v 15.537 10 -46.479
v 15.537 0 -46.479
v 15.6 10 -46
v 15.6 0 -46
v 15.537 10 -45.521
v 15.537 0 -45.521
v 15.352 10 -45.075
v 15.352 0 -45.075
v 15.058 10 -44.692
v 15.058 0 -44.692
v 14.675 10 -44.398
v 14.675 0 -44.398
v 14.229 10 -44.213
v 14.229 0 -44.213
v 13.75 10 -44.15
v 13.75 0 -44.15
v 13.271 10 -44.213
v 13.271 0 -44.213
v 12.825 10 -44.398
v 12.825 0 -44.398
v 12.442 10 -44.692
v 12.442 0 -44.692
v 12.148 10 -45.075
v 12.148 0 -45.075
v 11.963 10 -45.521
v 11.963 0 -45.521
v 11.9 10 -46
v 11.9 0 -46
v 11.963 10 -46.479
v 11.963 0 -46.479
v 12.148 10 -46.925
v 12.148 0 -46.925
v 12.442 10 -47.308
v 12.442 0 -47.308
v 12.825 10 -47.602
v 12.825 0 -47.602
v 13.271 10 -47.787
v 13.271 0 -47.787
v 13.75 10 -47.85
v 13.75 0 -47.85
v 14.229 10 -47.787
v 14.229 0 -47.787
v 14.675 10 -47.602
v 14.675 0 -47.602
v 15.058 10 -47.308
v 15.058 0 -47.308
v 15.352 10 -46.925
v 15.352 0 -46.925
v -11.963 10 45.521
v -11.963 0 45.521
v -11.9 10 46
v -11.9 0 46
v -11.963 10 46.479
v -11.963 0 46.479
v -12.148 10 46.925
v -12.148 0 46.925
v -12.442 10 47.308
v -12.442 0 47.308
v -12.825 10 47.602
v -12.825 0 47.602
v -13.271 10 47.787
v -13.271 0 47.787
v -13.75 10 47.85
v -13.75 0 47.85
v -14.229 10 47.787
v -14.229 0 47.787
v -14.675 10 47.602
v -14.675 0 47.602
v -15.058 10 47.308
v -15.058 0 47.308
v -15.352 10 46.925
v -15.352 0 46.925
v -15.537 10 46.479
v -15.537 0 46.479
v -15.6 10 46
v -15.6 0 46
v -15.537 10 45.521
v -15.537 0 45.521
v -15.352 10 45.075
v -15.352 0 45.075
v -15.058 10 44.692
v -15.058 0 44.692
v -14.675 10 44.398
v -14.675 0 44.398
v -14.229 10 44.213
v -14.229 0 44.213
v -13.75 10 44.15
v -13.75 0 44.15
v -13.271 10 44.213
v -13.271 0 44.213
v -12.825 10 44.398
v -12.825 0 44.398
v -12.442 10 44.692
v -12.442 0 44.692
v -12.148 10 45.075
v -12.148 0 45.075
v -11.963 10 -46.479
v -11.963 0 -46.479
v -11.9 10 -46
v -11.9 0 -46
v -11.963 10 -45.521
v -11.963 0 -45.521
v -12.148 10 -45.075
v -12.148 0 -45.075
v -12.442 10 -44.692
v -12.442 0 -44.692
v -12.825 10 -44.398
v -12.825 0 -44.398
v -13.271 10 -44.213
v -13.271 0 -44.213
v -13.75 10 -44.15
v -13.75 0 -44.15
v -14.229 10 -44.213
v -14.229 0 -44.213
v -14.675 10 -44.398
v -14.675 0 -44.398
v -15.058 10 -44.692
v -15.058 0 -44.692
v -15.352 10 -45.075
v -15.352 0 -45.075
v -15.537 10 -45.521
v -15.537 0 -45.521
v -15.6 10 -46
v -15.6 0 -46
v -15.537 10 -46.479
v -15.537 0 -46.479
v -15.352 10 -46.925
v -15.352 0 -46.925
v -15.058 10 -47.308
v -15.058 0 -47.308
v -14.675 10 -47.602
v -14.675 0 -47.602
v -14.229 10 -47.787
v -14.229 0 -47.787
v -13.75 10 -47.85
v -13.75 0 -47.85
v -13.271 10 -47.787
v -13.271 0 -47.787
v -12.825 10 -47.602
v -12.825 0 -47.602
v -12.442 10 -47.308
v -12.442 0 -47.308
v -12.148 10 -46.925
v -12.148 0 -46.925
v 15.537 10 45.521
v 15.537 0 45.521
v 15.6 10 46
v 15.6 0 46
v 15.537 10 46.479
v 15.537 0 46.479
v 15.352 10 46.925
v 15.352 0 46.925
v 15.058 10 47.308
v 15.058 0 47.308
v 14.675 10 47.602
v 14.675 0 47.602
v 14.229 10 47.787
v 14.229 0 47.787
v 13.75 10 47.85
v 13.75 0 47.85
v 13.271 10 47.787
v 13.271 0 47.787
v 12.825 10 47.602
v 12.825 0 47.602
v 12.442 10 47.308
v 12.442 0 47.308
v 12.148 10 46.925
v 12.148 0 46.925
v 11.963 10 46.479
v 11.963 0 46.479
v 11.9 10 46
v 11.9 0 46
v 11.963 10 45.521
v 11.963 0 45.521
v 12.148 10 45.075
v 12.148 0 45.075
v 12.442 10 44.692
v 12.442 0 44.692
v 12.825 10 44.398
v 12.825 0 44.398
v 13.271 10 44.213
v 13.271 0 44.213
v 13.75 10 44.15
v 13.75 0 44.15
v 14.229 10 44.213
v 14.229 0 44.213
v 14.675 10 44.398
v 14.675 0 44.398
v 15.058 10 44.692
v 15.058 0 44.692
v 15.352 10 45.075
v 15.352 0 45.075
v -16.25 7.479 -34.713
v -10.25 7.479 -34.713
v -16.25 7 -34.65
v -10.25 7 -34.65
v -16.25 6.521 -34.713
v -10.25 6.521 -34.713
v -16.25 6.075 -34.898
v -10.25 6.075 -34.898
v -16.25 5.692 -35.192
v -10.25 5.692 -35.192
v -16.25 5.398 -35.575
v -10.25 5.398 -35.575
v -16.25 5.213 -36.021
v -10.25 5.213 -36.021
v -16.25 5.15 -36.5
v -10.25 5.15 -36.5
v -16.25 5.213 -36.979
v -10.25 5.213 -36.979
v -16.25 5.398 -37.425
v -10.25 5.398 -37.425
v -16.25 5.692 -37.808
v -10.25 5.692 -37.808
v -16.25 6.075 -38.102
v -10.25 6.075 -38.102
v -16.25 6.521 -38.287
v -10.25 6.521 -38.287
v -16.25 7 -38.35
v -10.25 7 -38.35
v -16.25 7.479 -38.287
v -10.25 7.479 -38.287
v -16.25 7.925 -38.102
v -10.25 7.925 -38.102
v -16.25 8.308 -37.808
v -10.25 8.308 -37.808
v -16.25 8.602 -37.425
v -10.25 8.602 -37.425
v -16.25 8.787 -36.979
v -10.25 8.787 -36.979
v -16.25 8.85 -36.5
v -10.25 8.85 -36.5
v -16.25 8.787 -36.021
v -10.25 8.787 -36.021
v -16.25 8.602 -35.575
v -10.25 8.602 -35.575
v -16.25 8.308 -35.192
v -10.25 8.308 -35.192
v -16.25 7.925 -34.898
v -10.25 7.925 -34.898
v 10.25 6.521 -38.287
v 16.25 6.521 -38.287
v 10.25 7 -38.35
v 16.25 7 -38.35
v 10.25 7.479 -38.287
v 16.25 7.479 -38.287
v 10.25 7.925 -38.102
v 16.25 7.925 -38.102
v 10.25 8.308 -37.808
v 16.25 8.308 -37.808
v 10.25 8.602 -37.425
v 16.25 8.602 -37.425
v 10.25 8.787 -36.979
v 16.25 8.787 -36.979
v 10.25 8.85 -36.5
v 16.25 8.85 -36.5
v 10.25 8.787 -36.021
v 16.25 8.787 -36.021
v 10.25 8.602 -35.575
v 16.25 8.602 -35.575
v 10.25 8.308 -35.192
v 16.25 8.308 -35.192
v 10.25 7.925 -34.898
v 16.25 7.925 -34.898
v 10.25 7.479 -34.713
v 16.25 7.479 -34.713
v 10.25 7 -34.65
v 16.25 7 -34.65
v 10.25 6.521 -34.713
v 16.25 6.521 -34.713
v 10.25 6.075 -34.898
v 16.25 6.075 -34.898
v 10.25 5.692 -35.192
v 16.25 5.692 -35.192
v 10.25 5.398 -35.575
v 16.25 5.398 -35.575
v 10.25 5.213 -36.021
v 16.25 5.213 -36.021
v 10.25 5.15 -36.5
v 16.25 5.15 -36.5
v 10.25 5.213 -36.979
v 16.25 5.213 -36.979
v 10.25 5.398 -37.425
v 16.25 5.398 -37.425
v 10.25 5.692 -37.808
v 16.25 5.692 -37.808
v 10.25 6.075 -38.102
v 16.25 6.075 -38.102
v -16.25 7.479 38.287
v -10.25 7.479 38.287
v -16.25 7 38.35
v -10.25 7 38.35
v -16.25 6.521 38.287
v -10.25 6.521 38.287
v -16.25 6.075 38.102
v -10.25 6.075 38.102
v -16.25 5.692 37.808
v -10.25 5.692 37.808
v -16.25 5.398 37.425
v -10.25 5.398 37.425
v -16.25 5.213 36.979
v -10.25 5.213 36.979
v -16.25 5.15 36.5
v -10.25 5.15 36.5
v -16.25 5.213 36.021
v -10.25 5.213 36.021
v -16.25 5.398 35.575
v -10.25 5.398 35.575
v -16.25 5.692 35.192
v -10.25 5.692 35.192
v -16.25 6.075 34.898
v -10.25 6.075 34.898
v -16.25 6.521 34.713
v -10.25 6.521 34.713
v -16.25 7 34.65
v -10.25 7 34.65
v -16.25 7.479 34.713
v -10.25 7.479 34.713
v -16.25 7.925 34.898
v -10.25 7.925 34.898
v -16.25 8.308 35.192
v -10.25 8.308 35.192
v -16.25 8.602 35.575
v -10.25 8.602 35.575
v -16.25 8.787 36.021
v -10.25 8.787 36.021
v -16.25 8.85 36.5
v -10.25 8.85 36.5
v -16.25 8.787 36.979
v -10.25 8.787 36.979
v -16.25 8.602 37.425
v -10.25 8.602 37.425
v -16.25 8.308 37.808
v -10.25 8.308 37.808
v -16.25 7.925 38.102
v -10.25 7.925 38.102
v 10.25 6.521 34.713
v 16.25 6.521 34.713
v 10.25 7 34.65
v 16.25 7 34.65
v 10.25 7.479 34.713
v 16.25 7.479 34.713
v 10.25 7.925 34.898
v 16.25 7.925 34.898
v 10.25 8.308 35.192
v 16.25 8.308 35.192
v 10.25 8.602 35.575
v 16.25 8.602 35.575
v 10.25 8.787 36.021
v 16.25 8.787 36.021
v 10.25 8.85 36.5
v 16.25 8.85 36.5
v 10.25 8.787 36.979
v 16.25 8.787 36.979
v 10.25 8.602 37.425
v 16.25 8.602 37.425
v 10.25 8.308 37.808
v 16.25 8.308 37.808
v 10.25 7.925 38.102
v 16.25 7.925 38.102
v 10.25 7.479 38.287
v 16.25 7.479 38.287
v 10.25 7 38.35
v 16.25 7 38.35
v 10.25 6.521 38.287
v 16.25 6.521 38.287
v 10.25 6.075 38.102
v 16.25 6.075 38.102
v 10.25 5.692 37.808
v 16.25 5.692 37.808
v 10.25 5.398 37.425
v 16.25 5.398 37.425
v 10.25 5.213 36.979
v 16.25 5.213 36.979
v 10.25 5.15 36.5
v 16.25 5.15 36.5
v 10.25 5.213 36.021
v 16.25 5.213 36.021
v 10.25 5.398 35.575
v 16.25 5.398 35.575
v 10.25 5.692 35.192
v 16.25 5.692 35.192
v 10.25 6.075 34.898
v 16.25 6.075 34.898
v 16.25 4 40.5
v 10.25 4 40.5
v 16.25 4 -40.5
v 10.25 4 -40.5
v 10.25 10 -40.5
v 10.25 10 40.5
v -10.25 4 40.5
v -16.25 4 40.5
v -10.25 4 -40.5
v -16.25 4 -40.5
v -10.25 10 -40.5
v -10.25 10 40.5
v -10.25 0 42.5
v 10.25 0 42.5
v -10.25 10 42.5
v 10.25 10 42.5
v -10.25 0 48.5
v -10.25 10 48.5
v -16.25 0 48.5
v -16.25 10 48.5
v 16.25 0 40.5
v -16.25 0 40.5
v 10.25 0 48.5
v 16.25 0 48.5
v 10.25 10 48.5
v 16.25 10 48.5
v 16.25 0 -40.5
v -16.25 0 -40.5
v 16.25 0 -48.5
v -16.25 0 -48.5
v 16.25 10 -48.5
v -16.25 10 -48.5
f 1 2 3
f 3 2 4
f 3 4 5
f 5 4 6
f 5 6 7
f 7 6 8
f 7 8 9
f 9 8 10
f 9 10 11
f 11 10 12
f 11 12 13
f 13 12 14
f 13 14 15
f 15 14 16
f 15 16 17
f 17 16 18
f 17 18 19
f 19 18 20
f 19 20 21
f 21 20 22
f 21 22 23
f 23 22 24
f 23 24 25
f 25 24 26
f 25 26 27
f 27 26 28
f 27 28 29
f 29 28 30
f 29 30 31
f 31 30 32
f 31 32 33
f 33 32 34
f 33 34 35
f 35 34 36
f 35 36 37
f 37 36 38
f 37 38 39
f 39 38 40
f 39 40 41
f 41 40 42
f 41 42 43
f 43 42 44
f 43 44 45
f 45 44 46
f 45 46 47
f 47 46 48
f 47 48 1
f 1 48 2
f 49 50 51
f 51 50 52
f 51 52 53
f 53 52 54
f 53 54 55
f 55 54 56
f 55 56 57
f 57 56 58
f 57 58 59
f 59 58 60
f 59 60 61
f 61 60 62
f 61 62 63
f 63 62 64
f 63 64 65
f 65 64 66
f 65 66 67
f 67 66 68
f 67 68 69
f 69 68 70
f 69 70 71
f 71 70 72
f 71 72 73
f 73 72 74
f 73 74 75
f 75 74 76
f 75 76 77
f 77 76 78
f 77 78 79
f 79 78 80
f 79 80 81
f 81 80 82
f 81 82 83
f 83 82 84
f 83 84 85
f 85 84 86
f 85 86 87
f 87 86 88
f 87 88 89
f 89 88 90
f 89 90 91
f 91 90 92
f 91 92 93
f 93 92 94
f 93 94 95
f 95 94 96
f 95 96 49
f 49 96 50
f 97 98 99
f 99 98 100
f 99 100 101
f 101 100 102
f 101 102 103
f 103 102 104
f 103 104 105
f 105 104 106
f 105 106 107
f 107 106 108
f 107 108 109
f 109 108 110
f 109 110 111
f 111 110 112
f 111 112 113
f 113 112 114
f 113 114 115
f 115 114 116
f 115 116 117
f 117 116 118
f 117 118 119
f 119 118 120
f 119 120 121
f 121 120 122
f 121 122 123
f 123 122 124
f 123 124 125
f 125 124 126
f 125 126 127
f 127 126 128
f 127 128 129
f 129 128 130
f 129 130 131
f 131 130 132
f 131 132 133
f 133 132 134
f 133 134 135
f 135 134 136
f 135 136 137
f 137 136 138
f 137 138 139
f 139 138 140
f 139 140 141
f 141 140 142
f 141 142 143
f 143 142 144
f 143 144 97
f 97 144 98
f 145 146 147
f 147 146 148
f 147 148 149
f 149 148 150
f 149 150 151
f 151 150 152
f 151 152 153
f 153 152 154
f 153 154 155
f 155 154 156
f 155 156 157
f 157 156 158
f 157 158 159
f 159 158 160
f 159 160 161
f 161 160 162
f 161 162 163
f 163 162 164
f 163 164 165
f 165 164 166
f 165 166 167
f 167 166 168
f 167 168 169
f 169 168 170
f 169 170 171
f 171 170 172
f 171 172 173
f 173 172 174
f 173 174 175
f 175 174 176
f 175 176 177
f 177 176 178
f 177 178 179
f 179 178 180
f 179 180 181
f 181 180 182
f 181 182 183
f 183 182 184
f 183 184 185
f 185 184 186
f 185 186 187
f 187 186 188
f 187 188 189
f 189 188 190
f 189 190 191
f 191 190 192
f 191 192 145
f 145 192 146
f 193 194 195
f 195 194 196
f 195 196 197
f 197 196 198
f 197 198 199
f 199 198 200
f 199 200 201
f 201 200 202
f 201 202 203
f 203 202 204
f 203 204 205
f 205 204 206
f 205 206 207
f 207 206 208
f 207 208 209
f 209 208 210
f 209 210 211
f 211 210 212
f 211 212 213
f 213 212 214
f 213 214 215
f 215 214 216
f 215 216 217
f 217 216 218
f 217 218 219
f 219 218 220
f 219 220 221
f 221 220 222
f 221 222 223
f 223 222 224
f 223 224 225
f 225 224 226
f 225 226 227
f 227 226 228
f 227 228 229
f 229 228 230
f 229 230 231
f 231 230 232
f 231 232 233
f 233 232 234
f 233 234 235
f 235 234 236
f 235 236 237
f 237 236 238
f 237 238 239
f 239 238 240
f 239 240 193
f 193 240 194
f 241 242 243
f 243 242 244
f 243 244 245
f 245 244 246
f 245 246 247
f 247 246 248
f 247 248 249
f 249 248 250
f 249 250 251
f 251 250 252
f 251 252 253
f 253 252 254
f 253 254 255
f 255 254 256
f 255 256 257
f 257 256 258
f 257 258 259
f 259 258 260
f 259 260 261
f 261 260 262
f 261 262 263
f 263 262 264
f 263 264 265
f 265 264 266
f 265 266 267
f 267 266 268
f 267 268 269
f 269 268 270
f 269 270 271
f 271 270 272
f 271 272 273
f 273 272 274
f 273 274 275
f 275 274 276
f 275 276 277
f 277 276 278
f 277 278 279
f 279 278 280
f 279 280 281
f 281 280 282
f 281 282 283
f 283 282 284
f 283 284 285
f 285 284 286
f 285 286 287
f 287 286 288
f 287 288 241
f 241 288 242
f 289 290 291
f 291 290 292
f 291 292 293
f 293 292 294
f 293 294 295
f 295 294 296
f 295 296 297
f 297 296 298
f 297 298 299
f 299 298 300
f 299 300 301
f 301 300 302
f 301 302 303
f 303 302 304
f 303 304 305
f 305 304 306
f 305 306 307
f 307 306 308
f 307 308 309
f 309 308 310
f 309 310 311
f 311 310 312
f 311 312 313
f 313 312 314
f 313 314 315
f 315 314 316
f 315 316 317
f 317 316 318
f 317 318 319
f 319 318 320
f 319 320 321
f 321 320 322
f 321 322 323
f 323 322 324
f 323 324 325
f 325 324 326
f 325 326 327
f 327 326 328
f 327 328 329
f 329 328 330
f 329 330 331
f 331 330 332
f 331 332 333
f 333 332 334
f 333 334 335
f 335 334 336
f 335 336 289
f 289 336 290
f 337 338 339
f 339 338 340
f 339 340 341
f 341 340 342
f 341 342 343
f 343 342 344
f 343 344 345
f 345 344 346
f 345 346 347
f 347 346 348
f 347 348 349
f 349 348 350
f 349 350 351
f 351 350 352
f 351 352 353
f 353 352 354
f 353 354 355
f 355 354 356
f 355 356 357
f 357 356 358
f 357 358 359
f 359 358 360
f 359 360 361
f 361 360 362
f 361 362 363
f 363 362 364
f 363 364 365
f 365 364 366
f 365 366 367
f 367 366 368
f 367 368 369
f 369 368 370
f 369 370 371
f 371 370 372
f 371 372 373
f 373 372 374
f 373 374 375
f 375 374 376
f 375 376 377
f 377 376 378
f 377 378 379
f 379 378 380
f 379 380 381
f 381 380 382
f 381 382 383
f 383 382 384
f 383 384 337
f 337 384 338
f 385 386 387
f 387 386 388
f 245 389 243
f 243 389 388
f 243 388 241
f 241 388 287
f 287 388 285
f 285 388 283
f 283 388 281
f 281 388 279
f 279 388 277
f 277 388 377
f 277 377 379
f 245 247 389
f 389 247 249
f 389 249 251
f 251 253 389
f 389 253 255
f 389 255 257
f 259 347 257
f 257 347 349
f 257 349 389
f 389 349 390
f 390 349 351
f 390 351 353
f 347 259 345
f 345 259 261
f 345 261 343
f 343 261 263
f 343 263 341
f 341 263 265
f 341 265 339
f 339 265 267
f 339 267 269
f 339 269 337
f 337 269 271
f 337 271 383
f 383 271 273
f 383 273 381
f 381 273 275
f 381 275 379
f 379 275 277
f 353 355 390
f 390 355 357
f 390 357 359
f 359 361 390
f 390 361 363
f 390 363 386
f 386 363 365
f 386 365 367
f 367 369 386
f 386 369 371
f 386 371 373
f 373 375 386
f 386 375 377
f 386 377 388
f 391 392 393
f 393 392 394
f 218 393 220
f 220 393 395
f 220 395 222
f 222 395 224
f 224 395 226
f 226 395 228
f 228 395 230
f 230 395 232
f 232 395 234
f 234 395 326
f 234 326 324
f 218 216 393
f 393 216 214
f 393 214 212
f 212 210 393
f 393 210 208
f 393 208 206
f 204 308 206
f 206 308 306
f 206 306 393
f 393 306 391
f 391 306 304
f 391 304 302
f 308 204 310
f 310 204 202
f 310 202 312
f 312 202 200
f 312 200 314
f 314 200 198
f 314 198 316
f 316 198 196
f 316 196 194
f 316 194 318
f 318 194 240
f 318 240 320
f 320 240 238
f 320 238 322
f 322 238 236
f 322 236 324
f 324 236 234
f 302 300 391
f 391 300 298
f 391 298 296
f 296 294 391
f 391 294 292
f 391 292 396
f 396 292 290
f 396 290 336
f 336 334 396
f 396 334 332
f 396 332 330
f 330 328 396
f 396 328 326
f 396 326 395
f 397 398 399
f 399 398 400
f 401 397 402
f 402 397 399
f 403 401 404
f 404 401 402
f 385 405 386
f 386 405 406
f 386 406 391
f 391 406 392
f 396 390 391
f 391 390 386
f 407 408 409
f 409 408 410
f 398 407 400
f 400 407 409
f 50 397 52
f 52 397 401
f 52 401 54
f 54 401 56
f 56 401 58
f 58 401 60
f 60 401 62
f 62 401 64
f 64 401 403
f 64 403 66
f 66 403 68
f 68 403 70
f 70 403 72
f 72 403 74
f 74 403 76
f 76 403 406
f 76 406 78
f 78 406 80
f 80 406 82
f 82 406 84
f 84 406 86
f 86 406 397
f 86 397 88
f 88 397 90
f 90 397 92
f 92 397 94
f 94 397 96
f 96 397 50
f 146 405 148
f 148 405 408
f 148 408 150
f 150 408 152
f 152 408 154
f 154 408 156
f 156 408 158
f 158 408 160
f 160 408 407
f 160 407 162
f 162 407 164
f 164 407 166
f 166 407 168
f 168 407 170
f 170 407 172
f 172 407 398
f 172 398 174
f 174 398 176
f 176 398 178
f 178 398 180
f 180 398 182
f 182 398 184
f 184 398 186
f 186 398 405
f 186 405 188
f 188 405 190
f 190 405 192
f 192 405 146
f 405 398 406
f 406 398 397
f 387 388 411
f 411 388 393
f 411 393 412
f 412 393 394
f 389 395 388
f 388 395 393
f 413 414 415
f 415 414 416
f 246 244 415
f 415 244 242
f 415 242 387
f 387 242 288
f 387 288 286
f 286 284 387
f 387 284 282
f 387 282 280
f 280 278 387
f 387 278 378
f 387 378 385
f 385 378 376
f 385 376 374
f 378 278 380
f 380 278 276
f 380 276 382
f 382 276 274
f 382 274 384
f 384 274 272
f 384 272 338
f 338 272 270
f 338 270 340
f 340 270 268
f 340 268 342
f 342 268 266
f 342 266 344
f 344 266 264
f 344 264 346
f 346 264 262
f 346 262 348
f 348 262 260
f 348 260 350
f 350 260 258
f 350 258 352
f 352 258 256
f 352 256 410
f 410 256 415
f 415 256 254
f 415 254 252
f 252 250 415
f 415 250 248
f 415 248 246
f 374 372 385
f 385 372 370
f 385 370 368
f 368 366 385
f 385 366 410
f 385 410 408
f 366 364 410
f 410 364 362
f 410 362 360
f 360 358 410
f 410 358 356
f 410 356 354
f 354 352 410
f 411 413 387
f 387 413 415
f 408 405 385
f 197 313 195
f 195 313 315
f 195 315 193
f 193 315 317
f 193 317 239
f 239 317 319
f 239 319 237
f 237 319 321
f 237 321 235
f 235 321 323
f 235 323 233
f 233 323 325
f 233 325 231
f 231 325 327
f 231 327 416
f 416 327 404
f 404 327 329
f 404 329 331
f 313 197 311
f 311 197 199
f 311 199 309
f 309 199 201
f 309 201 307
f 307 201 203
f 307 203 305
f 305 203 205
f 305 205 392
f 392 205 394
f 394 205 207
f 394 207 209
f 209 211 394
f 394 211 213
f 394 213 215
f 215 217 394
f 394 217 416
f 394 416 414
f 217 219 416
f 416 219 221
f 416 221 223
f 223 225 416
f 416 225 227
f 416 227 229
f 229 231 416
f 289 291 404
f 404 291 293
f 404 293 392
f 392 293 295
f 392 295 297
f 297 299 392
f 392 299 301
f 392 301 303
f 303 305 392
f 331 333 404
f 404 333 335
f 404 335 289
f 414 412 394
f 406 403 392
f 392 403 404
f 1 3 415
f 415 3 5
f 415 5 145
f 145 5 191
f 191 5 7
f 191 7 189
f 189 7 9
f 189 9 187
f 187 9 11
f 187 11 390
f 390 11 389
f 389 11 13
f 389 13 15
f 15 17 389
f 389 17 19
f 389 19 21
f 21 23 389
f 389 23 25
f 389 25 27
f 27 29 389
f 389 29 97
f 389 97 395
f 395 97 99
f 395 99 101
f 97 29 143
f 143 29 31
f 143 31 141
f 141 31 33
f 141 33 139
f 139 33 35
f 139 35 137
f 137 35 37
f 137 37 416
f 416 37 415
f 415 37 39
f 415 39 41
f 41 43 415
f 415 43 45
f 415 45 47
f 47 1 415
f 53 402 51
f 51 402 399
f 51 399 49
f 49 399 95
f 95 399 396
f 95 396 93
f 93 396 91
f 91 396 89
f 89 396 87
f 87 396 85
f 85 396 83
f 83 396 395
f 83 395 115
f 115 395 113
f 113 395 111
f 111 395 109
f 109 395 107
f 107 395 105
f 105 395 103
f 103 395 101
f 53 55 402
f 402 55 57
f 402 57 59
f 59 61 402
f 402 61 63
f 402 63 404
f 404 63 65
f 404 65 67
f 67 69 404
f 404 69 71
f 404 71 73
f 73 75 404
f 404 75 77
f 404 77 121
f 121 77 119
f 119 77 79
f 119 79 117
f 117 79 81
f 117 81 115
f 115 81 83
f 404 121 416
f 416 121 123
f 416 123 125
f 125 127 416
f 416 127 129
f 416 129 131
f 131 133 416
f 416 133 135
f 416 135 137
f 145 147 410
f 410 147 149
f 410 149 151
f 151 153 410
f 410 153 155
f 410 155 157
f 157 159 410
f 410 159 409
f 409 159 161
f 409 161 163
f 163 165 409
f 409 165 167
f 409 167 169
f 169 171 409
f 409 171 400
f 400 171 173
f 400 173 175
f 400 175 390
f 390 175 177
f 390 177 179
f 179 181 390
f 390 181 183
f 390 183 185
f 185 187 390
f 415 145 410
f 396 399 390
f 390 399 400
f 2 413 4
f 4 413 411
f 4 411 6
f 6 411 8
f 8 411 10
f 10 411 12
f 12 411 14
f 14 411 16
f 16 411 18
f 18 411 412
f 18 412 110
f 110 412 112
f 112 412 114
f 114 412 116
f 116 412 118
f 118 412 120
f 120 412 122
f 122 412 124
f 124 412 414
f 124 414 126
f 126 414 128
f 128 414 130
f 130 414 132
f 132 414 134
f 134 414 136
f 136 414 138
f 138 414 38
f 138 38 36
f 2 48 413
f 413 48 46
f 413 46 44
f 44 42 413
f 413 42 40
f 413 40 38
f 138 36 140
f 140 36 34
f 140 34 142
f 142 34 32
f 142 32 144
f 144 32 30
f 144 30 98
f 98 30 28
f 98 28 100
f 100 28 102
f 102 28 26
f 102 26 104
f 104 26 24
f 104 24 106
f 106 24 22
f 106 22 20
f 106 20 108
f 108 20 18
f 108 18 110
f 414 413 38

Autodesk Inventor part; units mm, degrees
ref_plane "YZ Plane" through (0, 0, 0) normal (1, 0, 0) x (0, 1, 0)
ref_plane "XZ Plane" through (0, 0, 0) normal (0, 1, 0) x (-1, 0, 0)
ref_plane "XY Plane" through (0, 0, 0) normal (0, 0, 1) x (1, 0, 0)
sketch "Sketch1" plane through (0, 0, 0) normal (0, 1, 0) x (-1, 0, 0)
  line L0 (16.25, 48.5) -> (-16.25, 48.5)
  line L1 (-16.25, 48.5) -> (-16.25, -48.5)
  line L2 (-16.25, -48.5) -> (16.25, -48.5)
  line L3 (16.25, -48.5) -> (16.25, 48.5)
  line L4 (16.25, 48.5) -> (-16.25, -48.5) construction
  line L5 (-16.25, 48.5) -> (16.25, -48.5) construction
  line L6 (16.25, 48.5) -> (16.25, 40.5)
  line L7 (16.25, -48.5) -> (16.25, -40.5)
  line L8 (16.25, 40.5) -> (-16.25, 40.5)
  line L9 (16.25, -40.5) -> (-16.25, -40.5)
  line L10 (0, 48.5) -> (0, 42.5)
  line L11 (-16.25, 48.5) -> (-10.25, 48.5)
  line L12 (-10.25, 48.5) -> (-10.25, 42.5)
  line L13 (-10.25, 42.5) -> (-16.25, 42.5)
  line L14 (-16.25, 42.5) -> (-16.25, 48.5)
  line L15 (16.25, 48.5) -> (10.25, 48.5)
  line L16 (10.25, 48.5) -> (10.25, 42.5)
  line L17 (10.25, 42.5) -> (16.25, 42.5)
  line L18 (16.25, 42.5) -> (16.25, 48.5)
  line L19 (10.25, 42.5) -> (-10.25, 42.5)
  point P0 (0, 0)
  dimension "d0" = 32.5
  dimension "d1" = 97
  dimension "d4" = 6
  dimension "d5" = 6
  dimension "d6" = 6
  dimension "d7" = 6
  dimension "d8" = 6
extrude "Extrusion1" add sketch "Sketch1" along normal blind 10 contours L3 L17 L16 L0 | L3 L8 L1 L13 L19 L17 | L12 L13 L1 L0 | L3 L2 L1 L9
sketch "Sketch2" plane through (-16.25, 0, -40.5) normal (0, 0, 1) x (1, 0, 0)
  line L0 (0, 10) -> (32.5, 10) projected
  line L1 (32.5, 10) -> (26.5, 10)
  line L2 (26.5, 10) -> (26.5, 4)
  line L3 (26.5, 4) -> (32.5, 4)
  line L4 (32.5, 4) -> (32.5, 10)
  line L5 (0, 0) -> (0, 10) projected
  line L6 (0, 10) -> (6, 10)
  line L7 (6, 10) -> (6, 4)
  line L8 (6, 4) -> (0, 4)
  line L9 (0, 4) -> (0, 10)
  point P0 (16.25, 0)
  dimension "d11" = 6
  dimension "d12" = 6
  dimension "d15" = 6
  dimension "d16" = 6
extrude "Extrusion2" add sketch "Sketch2" along normal up to surface (81 mm away)
sketch "Sketch3" plane through (-16.25, 0, -48.5) normal (-1, 0, 0) x (0, 0, 1)
  circle A0 centre (85, 7) radius 1.85
  circle A1 centre (12, 7) radius 1.85
  line L0 (8, 4) -> (89, 4) projected
  line L1 (97, 0) -> (97, 10) projected
  line L2 (0, 0) -> (0, 10) projected
  point P0 (48.5, 0)
  dimension "d17" = 3.7
  dimension "d18" = 3.7
  dimension "d19" = 3
  dimension "d20" = 3
  dimension "d21" = 12
  dimension "d22" = 12
extrude "Extrusion3" cut sketch "Sketch3" against normal up to surface (32.5 mm away)
sketch "Sketch4" plane through (0, 0, 0) normal (0, -1, 0) x (1, 0, 0)
  circle A0 centre (13.75, 46) radius 1.85
  circle A1 centre (13.75, -46) radius 1.85
  circle A2 centre (-13.75, -46) radius 1.85
  circle A3 centre (-13.75, 46) radius 1.85
  line L0 (10.25, 48.5) -> (16.25, 48.5) projected
  line L1 (16.25, 48.5) -> (16.25, 40.5) projected
  line L2 (-16.25, 48.5) -> (-10.25, 48.5) projected
  line L3 (-16.25, 40.5) -> (-16.25, 48.5) projected
  line L4 (16.25, -40.5) -> (16.25, -48.5) projected
  line L5 (16.25, -48.5) -> (-16.25, -48.5) projected
  line L6 (-16.25, -48.5) -> (-16.25, -40.5) projected
  point P0 (0, 0)
  point P1 (16.25, 44.5)
  dimension "d25" = 3.7
  dimension "d26" = 3.7
  dimension "d27" = 3.7
  dimension "d28" = 3.7
  dimension "d29" = 2.5
  dimension "d30" = 2.5
  dimension "d31" = 2.5
  dimension "d32" = 2.5
  dimension "d33" = 2.5
  dimension "d34" = 2.5
  dimension "d35" = 2.5
  dimension "d36" = 2.5
extrude "Extrusion4" cut sketch "Sketch4" against normal blind 10
equation "\"d18\" = d17"
equation "\"d20\" = d19"
equation "\"d30\" = d29"
equation "\"d31\" = d29"
equation "\"d32\" = d29"
equation "\"d33\" = d29"
equation "\"d34\" = d29"
equation "\"d35\" = d29"
equation "\"d36\" = d29"
properties part number "V1 screen holder_3DPrint"
